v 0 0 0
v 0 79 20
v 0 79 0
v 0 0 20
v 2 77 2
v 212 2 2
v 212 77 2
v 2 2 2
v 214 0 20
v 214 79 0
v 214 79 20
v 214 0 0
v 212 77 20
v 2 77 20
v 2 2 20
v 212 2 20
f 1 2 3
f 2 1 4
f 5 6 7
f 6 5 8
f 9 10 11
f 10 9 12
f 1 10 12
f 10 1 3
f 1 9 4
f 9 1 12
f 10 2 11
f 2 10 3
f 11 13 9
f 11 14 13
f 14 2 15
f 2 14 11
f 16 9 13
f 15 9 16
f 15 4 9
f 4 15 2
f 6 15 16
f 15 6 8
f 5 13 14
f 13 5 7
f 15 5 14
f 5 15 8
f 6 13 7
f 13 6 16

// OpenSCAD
// Dimensions
trayLength = 210;
trayWidth = 75;
trayHeight = 2;

wallHeight = 20;
wallDepth = 2;

// Model
// Tray Base
cube([trayLength + (2 * wallDepth), trayWidth + (2 * wallDepth), trayHeight]);
// Tray Walls (Long Sides)
cube([trayLength + (2 * wallDepth), wallDepth, wallHeight]);
translate([0,trayWidth + wallDepth, 0]) {
    cube([trayLength + (2 * wallDepth), wallDepth, wallHeight]);
}
// Tray Walls (Short Sides)
cube([wallDepth, trayWidth + (2 * wallDepth), wallHeight]);
translate([trayLength + wallDepth, 0, 0]) {
    cube([wallDepth, trayWidth + (2 * wallDepth), wallHeight]);
}
